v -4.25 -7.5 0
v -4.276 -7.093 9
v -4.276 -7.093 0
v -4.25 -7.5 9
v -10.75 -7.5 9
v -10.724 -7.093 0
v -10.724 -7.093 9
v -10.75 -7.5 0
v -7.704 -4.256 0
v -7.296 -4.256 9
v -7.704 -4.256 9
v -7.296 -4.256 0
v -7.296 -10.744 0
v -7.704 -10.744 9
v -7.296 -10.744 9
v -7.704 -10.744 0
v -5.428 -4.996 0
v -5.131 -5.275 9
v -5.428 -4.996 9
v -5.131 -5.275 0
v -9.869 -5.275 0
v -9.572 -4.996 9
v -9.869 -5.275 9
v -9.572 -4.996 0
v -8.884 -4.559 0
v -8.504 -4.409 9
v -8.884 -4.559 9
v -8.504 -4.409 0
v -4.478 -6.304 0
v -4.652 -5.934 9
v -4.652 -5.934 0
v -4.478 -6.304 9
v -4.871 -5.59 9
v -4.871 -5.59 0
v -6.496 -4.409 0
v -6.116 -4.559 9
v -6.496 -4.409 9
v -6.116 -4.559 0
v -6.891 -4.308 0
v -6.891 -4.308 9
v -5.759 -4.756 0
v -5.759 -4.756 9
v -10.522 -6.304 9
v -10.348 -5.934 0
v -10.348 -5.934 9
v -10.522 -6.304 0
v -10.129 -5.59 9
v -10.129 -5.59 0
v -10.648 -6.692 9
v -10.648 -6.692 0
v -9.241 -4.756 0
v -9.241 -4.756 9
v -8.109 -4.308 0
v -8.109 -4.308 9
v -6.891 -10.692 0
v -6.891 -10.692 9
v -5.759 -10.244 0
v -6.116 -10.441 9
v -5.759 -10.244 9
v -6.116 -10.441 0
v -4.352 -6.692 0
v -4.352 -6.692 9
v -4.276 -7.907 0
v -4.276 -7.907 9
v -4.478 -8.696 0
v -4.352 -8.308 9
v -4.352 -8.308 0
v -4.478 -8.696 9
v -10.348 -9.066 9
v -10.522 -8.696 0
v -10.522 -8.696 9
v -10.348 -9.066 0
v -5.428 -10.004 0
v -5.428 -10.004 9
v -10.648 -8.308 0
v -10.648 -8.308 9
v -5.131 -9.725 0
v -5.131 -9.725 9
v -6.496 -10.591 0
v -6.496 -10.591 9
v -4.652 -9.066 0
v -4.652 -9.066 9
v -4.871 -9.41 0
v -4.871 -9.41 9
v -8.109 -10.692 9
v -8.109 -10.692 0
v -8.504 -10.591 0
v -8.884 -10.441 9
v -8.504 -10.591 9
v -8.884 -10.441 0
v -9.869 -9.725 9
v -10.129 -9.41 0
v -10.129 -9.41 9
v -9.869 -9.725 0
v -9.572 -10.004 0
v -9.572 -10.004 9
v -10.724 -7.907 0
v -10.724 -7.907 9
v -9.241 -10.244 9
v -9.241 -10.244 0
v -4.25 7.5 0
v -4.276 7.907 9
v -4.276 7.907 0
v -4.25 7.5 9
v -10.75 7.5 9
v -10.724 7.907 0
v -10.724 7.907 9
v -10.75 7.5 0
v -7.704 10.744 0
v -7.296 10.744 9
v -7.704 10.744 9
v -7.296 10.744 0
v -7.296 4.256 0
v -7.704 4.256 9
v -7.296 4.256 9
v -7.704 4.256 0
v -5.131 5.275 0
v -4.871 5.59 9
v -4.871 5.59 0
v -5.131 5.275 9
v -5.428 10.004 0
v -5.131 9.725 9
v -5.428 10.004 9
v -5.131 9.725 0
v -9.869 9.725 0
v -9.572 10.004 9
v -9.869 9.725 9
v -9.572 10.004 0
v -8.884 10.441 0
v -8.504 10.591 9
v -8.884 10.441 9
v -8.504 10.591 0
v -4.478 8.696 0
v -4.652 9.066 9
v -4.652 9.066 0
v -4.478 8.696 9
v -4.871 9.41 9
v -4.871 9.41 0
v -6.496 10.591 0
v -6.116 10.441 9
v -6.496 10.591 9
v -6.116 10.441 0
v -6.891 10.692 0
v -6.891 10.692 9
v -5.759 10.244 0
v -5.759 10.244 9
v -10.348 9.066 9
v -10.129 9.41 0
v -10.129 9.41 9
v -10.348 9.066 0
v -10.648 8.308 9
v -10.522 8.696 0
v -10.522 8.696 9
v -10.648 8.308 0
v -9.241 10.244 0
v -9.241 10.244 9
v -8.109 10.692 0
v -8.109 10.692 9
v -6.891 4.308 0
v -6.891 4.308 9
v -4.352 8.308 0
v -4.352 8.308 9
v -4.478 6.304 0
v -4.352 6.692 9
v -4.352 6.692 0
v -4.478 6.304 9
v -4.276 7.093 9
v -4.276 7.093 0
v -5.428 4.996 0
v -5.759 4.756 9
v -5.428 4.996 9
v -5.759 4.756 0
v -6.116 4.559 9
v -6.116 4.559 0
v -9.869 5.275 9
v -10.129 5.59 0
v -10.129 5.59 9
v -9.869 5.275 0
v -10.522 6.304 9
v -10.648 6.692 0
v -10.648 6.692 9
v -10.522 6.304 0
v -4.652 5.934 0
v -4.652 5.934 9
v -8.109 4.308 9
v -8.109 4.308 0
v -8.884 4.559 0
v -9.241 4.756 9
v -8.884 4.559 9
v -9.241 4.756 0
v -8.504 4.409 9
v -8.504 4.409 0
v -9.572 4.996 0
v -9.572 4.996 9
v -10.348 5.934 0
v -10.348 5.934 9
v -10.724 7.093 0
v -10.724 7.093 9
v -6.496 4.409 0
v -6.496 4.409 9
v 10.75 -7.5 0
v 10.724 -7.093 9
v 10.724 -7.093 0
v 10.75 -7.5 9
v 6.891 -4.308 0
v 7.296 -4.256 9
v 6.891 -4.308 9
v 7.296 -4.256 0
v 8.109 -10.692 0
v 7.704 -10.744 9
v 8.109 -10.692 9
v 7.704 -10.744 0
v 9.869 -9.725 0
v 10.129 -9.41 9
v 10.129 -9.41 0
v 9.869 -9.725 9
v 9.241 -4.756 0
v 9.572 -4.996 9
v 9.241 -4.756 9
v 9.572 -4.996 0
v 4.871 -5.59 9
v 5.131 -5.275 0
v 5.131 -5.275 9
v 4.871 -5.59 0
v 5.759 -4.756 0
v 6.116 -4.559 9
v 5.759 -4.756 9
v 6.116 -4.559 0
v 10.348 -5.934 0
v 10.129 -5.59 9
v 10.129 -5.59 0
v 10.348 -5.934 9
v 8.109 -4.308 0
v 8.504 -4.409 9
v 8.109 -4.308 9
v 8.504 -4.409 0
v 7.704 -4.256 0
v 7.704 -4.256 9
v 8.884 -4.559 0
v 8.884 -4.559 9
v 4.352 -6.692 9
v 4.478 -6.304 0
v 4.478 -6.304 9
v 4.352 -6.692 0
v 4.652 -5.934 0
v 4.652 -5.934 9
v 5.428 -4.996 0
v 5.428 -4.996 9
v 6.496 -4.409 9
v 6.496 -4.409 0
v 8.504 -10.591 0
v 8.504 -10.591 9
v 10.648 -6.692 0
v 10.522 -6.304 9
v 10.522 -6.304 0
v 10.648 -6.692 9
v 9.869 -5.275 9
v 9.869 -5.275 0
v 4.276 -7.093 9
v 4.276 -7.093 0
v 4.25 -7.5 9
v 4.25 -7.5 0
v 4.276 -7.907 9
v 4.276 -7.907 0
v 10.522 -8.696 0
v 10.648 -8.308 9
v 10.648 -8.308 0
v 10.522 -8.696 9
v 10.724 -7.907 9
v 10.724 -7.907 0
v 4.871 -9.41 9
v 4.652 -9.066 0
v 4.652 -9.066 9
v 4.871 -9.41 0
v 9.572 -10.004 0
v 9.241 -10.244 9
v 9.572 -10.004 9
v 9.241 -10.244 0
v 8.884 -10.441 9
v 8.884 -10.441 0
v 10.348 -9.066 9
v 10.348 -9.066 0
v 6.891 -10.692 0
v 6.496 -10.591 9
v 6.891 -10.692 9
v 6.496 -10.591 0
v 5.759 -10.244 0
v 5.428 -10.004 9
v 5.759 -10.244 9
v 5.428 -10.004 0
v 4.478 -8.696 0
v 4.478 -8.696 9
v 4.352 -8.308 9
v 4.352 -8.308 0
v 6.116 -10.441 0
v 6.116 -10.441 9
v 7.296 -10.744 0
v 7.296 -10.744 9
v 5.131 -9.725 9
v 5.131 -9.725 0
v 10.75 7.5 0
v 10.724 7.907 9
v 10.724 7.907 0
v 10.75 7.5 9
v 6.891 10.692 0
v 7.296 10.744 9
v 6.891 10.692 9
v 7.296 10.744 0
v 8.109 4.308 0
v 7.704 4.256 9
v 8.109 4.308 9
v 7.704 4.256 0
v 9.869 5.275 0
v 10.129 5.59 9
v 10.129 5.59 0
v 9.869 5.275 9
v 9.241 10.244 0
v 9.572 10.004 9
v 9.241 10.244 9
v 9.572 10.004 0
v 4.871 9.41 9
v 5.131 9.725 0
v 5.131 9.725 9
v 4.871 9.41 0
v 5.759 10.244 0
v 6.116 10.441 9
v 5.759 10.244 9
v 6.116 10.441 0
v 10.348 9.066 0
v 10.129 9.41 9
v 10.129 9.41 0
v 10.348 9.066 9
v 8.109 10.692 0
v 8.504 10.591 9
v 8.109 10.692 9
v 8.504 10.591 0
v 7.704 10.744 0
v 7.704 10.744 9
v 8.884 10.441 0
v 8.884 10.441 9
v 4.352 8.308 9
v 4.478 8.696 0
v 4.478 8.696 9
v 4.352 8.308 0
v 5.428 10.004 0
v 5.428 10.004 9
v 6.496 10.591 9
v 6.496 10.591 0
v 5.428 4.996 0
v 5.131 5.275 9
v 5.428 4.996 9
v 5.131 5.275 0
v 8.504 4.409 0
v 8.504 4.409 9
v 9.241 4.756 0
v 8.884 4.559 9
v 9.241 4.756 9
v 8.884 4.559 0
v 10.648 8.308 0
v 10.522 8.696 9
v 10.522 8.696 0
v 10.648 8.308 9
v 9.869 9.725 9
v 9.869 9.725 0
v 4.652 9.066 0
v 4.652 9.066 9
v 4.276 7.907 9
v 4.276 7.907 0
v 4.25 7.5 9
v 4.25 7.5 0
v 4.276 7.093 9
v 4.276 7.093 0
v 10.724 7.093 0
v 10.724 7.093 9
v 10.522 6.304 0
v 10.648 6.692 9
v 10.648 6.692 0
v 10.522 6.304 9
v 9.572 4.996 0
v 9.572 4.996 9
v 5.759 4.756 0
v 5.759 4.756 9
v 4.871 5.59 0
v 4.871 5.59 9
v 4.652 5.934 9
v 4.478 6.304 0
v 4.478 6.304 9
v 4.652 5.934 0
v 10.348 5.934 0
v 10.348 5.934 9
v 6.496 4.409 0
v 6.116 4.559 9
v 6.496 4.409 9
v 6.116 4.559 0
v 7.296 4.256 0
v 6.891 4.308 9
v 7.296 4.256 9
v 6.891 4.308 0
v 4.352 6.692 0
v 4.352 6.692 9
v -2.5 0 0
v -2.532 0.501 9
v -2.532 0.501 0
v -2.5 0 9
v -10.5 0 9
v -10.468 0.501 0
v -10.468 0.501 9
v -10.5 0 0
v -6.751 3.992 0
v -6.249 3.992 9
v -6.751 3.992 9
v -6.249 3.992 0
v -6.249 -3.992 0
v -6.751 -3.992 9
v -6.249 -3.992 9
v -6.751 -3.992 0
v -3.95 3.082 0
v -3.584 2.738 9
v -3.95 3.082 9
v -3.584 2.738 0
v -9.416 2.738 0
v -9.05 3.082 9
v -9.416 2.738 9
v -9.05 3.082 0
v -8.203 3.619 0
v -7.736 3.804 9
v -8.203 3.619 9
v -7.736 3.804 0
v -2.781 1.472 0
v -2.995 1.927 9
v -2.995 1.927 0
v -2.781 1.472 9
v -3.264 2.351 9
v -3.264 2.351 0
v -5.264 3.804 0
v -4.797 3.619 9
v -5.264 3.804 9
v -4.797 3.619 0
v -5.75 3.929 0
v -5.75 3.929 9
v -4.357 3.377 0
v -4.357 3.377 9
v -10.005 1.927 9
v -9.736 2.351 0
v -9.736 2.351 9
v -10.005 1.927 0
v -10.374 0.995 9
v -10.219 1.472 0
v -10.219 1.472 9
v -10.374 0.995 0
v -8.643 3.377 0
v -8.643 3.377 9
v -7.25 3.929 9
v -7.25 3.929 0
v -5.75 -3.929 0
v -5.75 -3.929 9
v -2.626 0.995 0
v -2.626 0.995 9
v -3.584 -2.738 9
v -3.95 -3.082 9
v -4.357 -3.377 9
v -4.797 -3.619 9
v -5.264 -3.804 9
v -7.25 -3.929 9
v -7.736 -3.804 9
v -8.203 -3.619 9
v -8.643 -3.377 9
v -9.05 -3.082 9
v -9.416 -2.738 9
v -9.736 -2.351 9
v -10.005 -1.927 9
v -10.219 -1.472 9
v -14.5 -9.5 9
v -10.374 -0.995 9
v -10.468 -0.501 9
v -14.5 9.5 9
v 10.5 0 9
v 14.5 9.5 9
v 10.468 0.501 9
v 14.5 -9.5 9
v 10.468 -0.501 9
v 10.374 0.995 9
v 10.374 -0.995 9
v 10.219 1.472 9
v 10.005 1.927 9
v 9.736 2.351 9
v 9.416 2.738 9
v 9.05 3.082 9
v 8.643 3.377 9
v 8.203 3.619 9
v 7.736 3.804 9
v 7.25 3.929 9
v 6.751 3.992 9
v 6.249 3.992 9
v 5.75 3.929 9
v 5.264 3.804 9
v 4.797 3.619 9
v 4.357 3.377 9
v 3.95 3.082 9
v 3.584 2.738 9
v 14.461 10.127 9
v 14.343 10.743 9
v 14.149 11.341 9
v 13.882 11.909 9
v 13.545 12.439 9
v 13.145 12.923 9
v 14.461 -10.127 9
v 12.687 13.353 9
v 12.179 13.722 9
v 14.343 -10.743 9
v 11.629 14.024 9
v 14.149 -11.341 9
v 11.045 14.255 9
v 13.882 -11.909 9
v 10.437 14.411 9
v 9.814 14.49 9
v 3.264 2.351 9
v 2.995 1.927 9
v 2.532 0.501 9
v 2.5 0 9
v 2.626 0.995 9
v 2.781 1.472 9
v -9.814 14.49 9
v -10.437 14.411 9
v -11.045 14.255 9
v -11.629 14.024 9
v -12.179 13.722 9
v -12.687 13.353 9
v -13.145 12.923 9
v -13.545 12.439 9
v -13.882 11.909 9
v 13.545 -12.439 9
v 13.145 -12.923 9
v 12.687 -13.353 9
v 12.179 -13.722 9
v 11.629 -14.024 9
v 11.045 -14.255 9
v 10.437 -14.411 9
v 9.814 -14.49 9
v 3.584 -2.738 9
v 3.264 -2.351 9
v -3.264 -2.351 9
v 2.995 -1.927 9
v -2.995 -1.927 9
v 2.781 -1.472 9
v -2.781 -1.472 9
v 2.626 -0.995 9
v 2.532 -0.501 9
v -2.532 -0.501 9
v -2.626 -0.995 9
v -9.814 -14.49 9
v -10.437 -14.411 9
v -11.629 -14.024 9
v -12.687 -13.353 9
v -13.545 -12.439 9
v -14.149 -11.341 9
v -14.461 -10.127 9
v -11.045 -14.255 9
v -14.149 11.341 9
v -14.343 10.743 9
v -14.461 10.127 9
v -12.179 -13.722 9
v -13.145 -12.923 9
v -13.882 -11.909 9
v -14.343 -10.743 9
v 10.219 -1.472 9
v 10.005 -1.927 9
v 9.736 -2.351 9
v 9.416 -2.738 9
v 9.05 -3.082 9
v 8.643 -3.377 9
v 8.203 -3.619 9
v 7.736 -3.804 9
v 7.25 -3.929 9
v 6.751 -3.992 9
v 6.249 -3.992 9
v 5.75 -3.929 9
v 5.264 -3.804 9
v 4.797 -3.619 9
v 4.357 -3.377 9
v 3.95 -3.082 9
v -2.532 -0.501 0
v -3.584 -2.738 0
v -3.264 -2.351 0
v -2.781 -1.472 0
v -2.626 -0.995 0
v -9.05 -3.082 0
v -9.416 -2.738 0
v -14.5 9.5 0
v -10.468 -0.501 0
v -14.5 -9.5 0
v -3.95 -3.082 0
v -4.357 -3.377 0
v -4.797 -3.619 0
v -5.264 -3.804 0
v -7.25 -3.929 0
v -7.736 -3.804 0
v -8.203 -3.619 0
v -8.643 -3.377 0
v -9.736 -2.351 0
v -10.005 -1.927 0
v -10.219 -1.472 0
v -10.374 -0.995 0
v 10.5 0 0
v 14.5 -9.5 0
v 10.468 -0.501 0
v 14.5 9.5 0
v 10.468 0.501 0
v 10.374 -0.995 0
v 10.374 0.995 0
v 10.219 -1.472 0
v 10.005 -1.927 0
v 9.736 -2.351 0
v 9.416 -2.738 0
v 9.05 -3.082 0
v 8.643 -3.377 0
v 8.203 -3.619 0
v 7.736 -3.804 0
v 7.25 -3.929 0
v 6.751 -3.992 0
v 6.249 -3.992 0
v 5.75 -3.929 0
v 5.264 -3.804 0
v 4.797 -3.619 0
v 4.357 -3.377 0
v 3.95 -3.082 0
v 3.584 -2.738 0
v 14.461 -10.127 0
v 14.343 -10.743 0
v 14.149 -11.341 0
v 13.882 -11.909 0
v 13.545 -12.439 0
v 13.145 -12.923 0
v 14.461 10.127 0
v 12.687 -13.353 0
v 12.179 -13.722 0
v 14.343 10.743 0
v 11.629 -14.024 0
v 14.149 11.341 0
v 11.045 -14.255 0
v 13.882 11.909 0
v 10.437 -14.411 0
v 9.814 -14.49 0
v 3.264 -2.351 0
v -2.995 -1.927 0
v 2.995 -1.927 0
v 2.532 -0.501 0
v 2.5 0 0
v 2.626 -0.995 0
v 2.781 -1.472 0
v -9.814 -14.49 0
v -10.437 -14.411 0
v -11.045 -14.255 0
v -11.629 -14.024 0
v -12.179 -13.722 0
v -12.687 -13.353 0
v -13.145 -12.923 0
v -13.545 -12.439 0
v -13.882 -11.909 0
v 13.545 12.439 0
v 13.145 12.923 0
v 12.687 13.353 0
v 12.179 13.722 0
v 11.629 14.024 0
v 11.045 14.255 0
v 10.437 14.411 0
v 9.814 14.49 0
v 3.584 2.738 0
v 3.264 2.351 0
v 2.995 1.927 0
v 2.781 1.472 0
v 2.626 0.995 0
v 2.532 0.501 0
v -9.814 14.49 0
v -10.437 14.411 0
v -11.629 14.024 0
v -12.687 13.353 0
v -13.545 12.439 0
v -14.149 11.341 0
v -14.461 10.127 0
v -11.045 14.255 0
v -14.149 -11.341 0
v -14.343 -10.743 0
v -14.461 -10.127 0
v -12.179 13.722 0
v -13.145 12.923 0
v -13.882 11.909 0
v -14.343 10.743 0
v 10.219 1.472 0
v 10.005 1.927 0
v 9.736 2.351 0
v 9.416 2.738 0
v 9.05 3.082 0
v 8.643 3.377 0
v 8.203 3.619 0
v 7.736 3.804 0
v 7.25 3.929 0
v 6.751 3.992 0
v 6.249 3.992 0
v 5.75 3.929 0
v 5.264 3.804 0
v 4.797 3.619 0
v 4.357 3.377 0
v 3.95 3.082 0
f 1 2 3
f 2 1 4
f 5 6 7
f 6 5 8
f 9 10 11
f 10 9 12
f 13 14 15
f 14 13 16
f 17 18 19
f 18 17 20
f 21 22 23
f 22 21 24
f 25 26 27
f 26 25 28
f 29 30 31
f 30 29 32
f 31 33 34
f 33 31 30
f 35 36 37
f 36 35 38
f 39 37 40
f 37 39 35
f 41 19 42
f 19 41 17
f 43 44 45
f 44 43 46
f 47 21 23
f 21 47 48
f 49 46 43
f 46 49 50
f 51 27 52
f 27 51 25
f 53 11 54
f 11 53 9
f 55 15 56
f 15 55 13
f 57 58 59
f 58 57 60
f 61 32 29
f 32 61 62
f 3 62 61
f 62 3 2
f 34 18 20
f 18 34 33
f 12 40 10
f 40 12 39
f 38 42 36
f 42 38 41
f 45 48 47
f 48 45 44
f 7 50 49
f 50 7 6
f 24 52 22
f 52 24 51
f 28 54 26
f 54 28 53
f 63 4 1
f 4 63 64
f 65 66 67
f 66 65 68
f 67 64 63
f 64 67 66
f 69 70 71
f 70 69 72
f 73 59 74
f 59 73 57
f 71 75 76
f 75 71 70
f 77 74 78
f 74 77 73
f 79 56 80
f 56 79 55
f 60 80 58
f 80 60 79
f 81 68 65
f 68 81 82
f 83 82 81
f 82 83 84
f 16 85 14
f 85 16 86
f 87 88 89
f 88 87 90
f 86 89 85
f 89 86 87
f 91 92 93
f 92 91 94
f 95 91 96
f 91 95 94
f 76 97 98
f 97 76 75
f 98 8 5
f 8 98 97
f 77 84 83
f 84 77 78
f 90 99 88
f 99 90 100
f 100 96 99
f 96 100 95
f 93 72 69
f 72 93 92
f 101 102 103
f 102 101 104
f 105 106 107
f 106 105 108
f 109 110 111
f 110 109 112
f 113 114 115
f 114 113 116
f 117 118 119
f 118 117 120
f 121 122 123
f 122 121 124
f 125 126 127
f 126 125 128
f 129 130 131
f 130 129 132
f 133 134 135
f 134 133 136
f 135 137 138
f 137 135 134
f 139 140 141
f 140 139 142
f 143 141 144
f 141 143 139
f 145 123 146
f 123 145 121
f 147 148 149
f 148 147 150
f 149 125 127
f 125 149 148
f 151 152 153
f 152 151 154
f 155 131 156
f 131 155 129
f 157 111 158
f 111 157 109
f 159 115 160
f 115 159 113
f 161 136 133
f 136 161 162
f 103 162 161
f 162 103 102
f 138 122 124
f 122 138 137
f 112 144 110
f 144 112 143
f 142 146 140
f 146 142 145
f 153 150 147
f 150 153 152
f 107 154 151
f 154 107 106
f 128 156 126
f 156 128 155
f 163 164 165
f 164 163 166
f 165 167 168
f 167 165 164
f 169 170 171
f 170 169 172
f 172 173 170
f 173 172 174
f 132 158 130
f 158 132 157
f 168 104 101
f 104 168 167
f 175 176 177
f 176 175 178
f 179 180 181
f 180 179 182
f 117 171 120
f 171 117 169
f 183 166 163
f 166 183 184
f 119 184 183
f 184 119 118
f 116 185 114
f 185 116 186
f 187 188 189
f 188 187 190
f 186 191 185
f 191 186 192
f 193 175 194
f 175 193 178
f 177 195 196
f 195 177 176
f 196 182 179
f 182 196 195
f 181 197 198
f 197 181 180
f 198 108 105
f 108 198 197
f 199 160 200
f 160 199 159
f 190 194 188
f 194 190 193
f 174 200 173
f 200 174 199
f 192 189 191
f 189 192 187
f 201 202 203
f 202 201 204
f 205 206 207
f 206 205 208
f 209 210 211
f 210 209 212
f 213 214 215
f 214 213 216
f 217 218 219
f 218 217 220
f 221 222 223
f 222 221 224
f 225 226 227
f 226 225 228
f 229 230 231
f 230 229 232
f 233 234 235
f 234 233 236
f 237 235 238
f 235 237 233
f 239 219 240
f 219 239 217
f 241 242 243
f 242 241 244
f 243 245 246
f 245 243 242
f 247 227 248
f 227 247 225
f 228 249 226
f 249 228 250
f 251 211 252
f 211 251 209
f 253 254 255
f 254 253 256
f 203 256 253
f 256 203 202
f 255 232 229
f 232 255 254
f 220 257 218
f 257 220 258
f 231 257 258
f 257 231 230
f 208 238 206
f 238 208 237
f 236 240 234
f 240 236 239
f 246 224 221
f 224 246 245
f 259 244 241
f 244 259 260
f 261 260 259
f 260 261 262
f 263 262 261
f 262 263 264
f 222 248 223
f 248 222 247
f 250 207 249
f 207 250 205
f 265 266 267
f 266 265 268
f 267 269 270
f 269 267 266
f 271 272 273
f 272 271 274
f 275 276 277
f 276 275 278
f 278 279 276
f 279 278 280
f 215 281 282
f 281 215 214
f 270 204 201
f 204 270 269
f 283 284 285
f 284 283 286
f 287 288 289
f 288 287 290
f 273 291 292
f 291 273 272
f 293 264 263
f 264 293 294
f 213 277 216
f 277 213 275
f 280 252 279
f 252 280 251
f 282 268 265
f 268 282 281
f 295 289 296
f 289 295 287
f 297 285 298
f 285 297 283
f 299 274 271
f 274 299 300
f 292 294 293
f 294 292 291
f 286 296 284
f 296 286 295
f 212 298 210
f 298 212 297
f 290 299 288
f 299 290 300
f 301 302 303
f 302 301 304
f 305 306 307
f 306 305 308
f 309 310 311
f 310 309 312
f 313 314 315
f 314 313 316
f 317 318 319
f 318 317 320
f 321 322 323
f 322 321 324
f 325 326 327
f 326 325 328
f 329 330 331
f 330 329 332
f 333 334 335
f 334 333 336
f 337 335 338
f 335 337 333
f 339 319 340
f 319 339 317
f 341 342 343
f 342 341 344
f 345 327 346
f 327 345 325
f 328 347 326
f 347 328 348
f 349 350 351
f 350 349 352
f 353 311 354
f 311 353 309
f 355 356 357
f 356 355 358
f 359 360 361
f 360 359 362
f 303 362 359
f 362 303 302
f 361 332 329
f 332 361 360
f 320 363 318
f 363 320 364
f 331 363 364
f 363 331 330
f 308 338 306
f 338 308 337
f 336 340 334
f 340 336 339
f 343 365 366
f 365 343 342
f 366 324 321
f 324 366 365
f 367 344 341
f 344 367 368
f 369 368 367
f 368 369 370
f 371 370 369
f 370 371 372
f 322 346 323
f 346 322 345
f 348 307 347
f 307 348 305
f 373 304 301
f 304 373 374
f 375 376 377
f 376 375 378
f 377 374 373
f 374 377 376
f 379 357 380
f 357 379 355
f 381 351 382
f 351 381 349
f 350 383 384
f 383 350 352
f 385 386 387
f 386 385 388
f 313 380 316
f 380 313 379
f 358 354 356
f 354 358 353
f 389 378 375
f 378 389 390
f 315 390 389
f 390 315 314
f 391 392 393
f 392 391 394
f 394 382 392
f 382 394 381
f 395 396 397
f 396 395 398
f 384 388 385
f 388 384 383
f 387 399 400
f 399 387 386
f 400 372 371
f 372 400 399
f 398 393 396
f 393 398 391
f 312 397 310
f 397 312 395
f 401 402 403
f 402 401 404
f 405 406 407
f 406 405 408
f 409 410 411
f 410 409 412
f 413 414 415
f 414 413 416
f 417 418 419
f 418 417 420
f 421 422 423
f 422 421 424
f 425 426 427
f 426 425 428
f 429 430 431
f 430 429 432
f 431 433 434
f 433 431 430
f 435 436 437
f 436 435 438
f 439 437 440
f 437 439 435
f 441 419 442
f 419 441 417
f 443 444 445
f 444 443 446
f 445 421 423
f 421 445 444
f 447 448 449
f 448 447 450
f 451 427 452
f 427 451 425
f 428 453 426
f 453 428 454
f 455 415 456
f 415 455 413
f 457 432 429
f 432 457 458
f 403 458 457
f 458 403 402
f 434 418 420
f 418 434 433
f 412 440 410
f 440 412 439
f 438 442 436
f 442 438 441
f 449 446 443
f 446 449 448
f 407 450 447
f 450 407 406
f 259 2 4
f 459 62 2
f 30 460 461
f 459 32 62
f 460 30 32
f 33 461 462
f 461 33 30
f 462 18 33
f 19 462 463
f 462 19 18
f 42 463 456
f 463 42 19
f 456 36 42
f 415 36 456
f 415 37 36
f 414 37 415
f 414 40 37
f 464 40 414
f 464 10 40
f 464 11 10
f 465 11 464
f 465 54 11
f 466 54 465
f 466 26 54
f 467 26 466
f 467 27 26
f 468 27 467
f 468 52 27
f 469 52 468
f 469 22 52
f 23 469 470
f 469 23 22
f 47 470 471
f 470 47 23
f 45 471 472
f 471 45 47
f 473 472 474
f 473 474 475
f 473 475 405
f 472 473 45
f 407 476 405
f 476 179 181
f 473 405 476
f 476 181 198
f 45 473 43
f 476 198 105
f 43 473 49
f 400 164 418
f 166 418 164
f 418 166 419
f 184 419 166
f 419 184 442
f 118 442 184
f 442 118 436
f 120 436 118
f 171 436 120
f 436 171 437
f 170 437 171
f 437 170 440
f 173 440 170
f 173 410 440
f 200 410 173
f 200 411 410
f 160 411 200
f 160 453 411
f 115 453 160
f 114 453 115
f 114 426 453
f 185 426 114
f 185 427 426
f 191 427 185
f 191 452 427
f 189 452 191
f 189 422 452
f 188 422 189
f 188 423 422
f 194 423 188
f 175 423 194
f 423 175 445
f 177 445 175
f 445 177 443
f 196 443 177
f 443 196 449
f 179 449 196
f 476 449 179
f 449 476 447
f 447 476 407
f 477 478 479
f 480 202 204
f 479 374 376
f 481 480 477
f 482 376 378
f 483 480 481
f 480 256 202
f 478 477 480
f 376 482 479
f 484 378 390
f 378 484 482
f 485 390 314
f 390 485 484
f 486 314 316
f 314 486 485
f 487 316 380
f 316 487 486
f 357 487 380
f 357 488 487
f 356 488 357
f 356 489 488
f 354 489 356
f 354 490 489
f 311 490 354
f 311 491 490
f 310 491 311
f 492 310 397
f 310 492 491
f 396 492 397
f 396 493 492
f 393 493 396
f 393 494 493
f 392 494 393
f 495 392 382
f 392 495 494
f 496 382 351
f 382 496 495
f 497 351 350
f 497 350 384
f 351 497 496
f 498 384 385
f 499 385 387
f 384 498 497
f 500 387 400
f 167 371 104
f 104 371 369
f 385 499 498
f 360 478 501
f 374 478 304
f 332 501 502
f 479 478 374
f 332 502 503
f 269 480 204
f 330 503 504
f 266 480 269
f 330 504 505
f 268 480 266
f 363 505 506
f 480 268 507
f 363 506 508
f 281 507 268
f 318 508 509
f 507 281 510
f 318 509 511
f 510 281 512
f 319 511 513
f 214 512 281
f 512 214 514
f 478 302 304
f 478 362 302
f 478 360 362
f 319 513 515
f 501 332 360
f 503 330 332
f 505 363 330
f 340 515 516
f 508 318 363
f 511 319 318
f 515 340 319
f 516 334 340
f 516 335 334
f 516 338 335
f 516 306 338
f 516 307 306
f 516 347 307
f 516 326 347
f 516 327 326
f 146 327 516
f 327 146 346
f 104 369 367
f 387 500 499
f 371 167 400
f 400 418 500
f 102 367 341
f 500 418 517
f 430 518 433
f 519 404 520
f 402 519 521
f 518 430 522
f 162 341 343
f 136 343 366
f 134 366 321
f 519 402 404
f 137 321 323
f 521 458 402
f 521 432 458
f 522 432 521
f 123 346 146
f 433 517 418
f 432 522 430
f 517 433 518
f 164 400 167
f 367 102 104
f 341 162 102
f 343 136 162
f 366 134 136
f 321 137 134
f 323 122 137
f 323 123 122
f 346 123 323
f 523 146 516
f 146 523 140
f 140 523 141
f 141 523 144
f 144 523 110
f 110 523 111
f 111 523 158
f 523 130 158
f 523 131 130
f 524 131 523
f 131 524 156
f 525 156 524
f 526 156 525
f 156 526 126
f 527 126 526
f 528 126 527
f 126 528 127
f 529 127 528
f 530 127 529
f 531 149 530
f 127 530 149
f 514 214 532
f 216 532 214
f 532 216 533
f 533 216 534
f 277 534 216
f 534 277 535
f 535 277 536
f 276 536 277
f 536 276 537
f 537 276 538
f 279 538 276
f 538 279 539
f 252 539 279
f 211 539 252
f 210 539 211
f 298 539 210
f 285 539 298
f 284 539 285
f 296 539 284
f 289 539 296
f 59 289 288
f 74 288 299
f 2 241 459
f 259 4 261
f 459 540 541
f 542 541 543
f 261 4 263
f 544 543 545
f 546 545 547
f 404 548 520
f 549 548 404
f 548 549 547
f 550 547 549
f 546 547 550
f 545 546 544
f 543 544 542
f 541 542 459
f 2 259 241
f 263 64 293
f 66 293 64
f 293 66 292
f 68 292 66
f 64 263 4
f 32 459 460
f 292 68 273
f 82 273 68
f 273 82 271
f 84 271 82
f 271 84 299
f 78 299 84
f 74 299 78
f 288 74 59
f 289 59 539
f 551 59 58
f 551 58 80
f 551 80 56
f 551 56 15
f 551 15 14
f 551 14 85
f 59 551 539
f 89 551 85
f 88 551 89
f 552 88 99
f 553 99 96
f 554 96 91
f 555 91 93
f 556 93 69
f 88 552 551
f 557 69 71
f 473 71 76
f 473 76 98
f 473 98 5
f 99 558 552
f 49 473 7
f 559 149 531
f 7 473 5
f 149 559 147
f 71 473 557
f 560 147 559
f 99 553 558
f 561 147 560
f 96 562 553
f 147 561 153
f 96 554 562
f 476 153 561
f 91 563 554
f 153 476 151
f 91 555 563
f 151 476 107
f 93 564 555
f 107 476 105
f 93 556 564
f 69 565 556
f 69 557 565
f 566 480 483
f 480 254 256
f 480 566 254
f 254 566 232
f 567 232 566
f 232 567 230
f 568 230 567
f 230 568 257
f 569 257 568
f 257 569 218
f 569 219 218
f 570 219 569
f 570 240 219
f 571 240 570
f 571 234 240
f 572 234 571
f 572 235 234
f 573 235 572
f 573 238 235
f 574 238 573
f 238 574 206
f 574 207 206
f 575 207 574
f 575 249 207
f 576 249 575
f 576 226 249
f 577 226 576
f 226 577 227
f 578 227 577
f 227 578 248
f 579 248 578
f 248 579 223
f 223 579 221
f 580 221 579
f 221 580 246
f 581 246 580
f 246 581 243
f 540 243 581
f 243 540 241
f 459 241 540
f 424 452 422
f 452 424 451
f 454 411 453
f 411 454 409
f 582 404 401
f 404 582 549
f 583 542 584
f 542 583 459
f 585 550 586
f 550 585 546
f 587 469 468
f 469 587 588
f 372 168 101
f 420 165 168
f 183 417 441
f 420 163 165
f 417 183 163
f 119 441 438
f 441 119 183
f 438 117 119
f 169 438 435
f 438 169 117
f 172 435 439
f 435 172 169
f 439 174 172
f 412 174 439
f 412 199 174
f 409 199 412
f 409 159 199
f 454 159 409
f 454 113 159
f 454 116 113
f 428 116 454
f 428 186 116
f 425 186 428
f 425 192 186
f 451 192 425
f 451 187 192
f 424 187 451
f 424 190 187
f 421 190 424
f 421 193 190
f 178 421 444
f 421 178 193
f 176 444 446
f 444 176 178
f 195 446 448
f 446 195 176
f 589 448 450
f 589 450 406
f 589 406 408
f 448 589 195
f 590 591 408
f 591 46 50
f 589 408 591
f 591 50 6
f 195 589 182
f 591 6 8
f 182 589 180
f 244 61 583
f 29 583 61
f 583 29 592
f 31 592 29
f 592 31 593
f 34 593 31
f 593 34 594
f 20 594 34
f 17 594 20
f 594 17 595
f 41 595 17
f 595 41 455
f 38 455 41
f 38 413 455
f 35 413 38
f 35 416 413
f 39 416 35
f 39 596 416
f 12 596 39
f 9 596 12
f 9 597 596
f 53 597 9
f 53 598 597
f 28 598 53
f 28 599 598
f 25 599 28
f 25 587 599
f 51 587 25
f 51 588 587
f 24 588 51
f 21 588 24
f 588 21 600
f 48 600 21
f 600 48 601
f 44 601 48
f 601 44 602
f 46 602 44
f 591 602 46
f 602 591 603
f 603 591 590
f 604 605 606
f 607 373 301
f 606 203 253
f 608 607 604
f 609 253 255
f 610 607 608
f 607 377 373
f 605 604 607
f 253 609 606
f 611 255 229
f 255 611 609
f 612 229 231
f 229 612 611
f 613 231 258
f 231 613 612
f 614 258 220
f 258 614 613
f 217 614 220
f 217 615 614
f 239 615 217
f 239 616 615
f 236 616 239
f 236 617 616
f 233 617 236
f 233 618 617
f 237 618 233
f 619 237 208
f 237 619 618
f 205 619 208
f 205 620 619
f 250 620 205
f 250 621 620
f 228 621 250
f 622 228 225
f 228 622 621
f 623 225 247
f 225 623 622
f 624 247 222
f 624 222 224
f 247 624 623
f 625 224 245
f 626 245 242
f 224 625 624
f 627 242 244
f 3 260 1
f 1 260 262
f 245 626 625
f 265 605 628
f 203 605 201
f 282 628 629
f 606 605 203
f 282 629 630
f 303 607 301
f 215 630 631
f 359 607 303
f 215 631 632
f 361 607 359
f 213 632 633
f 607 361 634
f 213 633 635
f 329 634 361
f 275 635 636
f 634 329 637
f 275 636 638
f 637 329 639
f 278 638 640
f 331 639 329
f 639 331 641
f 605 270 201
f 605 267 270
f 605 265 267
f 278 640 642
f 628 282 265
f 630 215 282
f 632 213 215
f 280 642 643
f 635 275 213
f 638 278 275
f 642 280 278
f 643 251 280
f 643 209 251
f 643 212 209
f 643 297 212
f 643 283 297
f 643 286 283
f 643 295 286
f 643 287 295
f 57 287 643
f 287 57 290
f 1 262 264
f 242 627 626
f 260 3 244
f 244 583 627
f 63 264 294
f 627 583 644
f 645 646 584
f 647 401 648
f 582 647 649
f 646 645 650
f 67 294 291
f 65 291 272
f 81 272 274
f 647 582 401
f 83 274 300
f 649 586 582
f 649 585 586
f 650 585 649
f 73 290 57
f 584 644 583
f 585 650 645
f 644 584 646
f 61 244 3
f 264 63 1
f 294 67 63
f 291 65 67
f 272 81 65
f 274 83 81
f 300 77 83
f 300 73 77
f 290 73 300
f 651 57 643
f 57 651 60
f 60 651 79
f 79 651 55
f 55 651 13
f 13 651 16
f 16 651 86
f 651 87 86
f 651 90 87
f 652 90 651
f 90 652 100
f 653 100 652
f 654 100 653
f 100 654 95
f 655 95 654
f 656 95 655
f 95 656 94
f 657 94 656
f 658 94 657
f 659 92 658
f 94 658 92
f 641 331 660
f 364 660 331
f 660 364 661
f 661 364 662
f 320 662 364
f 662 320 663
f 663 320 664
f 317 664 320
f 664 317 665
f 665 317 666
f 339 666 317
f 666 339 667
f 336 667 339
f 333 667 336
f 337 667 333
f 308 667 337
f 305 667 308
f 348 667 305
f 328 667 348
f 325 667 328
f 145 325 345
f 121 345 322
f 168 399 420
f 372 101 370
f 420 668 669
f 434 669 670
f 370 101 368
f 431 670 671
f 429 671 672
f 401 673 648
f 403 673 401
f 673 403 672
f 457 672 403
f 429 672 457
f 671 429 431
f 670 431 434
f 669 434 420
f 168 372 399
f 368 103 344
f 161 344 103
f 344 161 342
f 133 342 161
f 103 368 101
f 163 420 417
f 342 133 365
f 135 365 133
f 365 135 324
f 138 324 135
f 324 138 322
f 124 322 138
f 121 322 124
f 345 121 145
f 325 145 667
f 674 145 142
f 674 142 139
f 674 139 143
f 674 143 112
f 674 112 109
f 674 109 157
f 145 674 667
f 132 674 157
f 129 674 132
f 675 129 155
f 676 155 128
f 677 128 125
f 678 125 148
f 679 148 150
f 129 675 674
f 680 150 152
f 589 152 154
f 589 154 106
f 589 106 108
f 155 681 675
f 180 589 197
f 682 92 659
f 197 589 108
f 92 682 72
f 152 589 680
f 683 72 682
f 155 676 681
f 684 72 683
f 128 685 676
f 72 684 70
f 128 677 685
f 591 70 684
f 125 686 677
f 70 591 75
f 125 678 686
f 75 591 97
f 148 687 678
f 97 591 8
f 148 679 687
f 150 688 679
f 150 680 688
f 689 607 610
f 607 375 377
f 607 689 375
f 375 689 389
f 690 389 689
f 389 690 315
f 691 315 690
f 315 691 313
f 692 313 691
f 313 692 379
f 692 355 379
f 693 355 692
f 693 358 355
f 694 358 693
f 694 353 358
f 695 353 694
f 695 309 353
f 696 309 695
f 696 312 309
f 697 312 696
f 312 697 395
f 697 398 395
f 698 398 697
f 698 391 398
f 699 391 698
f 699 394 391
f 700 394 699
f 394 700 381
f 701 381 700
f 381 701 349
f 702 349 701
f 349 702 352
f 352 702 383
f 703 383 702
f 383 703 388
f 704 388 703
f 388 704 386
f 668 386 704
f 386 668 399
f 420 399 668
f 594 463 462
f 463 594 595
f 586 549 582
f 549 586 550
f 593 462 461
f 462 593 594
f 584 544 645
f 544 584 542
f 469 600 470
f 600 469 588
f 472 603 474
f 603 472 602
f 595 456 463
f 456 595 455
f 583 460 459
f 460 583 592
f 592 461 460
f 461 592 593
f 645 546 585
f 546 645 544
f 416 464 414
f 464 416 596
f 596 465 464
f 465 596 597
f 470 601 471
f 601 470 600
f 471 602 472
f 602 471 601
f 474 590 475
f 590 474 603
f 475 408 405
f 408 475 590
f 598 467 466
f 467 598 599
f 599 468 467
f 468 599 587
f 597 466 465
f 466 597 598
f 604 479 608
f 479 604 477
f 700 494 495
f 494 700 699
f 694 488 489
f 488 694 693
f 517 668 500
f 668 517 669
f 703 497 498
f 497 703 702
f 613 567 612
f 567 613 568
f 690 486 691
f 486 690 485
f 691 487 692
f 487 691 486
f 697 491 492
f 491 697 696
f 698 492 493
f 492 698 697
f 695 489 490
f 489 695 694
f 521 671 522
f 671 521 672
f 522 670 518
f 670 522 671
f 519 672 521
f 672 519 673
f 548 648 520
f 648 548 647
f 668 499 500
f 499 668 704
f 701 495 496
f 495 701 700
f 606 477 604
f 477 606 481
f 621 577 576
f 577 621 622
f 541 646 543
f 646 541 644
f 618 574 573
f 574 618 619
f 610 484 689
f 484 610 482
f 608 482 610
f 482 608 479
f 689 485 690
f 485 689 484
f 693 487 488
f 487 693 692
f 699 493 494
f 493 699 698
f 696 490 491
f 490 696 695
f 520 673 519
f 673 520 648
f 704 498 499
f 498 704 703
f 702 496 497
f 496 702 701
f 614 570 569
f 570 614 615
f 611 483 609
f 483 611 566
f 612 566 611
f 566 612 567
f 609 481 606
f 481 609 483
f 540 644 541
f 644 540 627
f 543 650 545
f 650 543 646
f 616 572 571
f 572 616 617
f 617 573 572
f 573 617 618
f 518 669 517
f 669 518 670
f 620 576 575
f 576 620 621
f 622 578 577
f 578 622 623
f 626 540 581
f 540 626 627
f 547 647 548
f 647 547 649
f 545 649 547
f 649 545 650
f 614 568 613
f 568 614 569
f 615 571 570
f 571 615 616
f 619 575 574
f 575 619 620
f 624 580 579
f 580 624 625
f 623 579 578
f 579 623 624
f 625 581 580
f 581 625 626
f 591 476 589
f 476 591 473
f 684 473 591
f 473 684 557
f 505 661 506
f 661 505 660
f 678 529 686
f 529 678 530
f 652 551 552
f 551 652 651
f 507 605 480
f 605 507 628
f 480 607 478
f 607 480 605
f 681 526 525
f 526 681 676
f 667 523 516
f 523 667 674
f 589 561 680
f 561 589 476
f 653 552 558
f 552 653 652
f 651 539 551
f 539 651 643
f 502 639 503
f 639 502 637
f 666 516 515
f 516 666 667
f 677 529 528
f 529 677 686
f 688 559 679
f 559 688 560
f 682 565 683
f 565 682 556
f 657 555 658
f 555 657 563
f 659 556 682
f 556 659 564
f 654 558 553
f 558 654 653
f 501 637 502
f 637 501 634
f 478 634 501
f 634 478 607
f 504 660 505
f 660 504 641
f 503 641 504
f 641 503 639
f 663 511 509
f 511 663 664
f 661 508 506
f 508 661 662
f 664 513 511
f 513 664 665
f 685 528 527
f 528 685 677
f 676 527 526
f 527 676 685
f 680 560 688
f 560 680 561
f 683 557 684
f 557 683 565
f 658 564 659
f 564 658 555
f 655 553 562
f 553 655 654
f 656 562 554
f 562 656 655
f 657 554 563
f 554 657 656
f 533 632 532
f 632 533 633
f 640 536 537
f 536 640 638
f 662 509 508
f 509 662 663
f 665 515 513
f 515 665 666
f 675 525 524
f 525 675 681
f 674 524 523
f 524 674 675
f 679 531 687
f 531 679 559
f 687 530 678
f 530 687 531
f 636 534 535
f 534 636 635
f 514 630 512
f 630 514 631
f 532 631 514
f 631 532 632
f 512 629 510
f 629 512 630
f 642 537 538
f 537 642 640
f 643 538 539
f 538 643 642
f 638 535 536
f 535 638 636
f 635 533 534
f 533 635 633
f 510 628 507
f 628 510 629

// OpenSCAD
$fn = 50;


difference() {
	union() {
		hull() {
			translate(v = [-9.5000000000, 9.5000000000, 0]) {
				cylinder(h = 9, r = 5);
			}
			translate(v = [9.5000000000, 9.5000000000, 0]) {
				cylinder(h = 9, r = 5);
			}
			translate(v = [-9.5000000000, -9.5000000000, 0]) {
				cylinder(h = 9, r = 5);
			}
			translate(v = [9.5000000000, -9.5000000000, 0]) {
				cylinder(h = 9, r = 5);
			}
		}
	}
	union() {
		#translate(v = [-7.5000000000, -7.5000000000, -100.0000000000]) {
			cylinder(h = 200, r = 3.2500000000);
		}
		#translate(v = [-7.5000000000, 7.5000000000, -100.0000000000]) {
			cylinder(h = 200, r = 3.2500000000);
		}
		#translate(v = [7.5000000000, -7.5000000000, -100.0000000000]) {
			cylinder(h = 200, r = 3.2500000000);
		}
		#translate(v = [7.5000000000, 7.5000000000, -100.0000000000]) {
			cylinder(h = 200, r = 3.2500000000);
		}
		#translate(v = [-6.5000000000, 0, 0]) {
			cylinder(h = 9, r = 4.0000000000);
		}
		#translate(v = [6.5000000000, 0, 0]) {
			cylinder(h = 9, r = 4.0000000000);
		}
	}
}
